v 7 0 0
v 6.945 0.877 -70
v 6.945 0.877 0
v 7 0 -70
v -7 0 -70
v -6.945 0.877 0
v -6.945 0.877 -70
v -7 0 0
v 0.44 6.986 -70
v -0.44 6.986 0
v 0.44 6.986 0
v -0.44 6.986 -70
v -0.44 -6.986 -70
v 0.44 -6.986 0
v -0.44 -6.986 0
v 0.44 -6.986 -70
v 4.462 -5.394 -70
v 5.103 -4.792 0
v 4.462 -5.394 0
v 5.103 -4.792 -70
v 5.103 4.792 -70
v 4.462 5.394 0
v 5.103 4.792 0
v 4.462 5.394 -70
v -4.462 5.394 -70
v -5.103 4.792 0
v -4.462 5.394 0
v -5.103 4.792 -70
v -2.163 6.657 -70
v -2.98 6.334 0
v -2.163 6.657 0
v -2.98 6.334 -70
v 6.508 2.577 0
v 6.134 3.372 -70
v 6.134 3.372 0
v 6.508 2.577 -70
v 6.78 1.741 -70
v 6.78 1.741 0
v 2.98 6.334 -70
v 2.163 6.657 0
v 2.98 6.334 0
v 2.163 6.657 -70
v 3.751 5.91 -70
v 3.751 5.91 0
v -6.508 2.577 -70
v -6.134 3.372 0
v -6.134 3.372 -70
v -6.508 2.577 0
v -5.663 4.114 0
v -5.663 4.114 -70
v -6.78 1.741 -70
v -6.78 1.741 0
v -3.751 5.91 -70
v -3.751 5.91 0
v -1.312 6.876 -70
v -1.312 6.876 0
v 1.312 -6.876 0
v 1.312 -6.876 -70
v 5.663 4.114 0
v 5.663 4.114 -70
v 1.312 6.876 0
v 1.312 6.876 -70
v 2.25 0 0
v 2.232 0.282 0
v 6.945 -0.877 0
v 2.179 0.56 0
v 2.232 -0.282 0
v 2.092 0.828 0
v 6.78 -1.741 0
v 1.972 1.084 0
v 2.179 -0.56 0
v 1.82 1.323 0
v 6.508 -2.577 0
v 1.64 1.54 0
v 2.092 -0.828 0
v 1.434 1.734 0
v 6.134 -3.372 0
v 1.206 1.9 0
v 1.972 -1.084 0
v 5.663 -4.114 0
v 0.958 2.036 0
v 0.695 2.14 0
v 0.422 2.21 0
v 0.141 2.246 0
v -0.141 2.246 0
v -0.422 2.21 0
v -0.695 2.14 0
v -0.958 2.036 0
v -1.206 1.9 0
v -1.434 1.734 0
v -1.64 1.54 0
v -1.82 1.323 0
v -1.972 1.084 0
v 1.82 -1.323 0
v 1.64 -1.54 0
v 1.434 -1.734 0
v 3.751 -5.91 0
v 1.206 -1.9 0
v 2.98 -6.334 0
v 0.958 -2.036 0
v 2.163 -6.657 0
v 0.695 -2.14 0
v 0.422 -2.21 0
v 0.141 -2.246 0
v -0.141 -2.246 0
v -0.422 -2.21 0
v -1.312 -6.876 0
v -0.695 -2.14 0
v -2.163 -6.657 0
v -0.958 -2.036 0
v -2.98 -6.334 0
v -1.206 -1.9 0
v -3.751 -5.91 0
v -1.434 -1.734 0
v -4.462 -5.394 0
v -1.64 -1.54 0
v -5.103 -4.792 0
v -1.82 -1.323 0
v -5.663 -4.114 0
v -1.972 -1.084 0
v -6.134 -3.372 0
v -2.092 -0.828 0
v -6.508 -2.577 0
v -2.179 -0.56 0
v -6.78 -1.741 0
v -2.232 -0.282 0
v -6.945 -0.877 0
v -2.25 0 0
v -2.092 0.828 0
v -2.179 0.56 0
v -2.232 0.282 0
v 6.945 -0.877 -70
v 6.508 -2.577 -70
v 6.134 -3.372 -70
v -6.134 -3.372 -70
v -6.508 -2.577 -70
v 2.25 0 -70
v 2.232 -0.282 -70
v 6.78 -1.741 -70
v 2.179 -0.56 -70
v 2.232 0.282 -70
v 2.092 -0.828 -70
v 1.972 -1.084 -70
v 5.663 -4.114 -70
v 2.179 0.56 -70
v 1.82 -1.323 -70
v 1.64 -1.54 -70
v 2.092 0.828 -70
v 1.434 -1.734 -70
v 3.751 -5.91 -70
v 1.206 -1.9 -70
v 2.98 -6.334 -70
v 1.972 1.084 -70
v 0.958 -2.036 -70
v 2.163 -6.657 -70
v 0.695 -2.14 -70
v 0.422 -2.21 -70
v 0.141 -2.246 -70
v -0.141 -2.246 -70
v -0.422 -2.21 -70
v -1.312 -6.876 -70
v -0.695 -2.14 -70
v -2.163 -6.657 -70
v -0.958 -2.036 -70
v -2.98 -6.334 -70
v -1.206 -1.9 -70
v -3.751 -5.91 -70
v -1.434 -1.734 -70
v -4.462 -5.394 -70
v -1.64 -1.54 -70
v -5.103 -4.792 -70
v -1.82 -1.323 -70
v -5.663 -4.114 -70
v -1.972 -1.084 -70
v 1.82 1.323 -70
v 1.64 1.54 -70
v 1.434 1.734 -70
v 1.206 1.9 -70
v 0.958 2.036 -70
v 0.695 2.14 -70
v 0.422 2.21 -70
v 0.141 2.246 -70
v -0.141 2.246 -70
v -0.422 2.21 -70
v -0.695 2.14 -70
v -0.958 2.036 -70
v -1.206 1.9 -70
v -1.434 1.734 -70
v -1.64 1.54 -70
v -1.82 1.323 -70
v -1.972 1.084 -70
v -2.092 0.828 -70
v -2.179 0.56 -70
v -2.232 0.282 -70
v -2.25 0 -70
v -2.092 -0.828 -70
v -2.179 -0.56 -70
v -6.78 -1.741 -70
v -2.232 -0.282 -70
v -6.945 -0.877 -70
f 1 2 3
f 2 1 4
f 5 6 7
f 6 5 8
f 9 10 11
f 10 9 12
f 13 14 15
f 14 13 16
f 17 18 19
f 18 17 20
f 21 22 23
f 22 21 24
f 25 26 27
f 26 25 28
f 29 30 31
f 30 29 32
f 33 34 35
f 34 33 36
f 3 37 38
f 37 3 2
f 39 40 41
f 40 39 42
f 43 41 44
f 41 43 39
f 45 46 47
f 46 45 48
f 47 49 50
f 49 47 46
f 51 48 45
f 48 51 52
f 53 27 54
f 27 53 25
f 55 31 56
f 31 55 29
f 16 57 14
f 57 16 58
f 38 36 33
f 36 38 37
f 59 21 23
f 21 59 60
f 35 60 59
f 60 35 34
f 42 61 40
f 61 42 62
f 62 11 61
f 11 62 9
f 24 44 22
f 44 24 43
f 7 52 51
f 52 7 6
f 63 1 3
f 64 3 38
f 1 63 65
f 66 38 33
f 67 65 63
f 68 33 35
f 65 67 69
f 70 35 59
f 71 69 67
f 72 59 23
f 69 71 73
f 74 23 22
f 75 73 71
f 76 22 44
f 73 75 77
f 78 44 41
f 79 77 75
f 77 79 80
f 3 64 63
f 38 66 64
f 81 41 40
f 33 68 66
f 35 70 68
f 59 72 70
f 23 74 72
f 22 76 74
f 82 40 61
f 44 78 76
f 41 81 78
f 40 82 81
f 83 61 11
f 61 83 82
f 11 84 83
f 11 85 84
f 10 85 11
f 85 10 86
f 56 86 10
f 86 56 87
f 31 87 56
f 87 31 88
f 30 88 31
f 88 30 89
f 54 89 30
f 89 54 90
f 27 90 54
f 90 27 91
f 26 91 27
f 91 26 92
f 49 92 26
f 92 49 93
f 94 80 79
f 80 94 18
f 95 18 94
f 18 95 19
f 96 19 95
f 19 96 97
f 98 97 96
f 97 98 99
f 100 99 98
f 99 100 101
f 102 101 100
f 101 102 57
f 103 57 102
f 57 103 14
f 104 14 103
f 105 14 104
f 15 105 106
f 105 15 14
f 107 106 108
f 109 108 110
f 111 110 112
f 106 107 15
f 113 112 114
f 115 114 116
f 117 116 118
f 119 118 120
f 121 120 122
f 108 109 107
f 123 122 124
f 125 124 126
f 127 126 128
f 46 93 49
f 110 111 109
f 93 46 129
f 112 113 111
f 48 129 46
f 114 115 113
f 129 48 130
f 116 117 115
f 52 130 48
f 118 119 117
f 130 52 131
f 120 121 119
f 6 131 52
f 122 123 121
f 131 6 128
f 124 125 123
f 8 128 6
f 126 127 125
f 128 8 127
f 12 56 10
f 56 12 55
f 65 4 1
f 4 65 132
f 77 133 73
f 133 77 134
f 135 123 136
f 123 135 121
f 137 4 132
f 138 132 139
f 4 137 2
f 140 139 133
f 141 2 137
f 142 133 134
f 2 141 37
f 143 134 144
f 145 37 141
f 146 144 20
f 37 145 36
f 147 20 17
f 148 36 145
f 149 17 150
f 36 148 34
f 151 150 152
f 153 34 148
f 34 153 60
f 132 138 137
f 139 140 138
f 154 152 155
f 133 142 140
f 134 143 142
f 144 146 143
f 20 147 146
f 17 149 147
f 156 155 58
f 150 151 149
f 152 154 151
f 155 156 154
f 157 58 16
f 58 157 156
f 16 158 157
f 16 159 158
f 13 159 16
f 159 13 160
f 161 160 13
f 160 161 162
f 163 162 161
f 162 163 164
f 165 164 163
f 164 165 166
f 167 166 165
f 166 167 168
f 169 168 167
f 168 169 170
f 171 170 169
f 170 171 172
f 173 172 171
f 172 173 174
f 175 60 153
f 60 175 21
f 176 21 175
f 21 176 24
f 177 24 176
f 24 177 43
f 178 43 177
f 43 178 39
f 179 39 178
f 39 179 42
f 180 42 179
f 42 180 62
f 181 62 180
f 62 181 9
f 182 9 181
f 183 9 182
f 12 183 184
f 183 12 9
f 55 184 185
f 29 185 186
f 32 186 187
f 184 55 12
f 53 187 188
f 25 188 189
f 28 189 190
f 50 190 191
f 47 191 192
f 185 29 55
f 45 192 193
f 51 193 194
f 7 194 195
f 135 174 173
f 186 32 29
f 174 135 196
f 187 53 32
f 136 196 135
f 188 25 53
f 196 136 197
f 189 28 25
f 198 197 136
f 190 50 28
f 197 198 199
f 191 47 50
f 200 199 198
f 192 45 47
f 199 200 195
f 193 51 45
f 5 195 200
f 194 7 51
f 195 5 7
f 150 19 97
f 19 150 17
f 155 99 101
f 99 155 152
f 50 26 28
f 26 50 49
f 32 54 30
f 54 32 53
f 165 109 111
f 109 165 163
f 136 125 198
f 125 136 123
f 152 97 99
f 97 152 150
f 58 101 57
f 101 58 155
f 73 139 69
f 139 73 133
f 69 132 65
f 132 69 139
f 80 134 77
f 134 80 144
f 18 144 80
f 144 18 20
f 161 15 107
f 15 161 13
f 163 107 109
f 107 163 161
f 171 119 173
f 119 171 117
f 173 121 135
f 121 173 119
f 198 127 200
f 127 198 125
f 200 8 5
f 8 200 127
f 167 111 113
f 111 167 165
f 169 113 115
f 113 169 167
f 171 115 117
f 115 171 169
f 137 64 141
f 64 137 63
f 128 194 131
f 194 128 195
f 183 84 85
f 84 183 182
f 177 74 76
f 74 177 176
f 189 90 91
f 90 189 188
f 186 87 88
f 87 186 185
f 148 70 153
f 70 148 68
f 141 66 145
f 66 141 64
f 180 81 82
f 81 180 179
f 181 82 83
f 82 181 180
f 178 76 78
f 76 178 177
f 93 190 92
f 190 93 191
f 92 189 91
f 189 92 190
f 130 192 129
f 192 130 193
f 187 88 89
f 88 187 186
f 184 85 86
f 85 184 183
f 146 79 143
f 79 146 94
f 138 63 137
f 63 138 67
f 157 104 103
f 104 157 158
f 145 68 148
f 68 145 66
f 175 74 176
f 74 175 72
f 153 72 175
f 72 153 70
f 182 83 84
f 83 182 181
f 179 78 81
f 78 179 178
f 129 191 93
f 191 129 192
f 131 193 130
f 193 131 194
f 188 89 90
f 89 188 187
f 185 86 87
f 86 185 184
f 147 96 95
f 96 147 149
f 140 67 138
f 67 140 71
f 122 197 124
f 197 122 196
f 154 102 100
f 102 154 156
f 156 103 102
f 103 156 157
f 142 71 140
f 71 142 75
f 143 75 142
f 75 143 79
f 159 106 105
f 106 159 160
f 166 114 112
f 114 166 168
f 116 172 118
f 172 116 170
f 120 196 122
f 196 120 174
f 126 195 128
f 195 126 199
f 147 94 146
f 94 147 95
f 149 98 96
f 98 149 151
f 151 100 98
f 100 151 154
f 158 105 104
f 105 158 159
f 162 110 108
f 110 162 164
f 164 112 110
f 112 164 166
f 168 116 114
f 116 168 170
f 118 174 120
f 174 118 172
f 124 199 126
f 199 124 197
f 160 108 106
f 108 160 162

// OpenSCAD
$fn = 50;


difference() {
	union() {
		translate(v = [0, 0, -70.0000000000]) {
			cylinder(h = 70, r = 7.0000000000);
		}
	}
	union() {
		#translate(v = [0, 0, -70]) {
			cylinder(h = 70, r = 2.2500000000);
		}
	}
}
